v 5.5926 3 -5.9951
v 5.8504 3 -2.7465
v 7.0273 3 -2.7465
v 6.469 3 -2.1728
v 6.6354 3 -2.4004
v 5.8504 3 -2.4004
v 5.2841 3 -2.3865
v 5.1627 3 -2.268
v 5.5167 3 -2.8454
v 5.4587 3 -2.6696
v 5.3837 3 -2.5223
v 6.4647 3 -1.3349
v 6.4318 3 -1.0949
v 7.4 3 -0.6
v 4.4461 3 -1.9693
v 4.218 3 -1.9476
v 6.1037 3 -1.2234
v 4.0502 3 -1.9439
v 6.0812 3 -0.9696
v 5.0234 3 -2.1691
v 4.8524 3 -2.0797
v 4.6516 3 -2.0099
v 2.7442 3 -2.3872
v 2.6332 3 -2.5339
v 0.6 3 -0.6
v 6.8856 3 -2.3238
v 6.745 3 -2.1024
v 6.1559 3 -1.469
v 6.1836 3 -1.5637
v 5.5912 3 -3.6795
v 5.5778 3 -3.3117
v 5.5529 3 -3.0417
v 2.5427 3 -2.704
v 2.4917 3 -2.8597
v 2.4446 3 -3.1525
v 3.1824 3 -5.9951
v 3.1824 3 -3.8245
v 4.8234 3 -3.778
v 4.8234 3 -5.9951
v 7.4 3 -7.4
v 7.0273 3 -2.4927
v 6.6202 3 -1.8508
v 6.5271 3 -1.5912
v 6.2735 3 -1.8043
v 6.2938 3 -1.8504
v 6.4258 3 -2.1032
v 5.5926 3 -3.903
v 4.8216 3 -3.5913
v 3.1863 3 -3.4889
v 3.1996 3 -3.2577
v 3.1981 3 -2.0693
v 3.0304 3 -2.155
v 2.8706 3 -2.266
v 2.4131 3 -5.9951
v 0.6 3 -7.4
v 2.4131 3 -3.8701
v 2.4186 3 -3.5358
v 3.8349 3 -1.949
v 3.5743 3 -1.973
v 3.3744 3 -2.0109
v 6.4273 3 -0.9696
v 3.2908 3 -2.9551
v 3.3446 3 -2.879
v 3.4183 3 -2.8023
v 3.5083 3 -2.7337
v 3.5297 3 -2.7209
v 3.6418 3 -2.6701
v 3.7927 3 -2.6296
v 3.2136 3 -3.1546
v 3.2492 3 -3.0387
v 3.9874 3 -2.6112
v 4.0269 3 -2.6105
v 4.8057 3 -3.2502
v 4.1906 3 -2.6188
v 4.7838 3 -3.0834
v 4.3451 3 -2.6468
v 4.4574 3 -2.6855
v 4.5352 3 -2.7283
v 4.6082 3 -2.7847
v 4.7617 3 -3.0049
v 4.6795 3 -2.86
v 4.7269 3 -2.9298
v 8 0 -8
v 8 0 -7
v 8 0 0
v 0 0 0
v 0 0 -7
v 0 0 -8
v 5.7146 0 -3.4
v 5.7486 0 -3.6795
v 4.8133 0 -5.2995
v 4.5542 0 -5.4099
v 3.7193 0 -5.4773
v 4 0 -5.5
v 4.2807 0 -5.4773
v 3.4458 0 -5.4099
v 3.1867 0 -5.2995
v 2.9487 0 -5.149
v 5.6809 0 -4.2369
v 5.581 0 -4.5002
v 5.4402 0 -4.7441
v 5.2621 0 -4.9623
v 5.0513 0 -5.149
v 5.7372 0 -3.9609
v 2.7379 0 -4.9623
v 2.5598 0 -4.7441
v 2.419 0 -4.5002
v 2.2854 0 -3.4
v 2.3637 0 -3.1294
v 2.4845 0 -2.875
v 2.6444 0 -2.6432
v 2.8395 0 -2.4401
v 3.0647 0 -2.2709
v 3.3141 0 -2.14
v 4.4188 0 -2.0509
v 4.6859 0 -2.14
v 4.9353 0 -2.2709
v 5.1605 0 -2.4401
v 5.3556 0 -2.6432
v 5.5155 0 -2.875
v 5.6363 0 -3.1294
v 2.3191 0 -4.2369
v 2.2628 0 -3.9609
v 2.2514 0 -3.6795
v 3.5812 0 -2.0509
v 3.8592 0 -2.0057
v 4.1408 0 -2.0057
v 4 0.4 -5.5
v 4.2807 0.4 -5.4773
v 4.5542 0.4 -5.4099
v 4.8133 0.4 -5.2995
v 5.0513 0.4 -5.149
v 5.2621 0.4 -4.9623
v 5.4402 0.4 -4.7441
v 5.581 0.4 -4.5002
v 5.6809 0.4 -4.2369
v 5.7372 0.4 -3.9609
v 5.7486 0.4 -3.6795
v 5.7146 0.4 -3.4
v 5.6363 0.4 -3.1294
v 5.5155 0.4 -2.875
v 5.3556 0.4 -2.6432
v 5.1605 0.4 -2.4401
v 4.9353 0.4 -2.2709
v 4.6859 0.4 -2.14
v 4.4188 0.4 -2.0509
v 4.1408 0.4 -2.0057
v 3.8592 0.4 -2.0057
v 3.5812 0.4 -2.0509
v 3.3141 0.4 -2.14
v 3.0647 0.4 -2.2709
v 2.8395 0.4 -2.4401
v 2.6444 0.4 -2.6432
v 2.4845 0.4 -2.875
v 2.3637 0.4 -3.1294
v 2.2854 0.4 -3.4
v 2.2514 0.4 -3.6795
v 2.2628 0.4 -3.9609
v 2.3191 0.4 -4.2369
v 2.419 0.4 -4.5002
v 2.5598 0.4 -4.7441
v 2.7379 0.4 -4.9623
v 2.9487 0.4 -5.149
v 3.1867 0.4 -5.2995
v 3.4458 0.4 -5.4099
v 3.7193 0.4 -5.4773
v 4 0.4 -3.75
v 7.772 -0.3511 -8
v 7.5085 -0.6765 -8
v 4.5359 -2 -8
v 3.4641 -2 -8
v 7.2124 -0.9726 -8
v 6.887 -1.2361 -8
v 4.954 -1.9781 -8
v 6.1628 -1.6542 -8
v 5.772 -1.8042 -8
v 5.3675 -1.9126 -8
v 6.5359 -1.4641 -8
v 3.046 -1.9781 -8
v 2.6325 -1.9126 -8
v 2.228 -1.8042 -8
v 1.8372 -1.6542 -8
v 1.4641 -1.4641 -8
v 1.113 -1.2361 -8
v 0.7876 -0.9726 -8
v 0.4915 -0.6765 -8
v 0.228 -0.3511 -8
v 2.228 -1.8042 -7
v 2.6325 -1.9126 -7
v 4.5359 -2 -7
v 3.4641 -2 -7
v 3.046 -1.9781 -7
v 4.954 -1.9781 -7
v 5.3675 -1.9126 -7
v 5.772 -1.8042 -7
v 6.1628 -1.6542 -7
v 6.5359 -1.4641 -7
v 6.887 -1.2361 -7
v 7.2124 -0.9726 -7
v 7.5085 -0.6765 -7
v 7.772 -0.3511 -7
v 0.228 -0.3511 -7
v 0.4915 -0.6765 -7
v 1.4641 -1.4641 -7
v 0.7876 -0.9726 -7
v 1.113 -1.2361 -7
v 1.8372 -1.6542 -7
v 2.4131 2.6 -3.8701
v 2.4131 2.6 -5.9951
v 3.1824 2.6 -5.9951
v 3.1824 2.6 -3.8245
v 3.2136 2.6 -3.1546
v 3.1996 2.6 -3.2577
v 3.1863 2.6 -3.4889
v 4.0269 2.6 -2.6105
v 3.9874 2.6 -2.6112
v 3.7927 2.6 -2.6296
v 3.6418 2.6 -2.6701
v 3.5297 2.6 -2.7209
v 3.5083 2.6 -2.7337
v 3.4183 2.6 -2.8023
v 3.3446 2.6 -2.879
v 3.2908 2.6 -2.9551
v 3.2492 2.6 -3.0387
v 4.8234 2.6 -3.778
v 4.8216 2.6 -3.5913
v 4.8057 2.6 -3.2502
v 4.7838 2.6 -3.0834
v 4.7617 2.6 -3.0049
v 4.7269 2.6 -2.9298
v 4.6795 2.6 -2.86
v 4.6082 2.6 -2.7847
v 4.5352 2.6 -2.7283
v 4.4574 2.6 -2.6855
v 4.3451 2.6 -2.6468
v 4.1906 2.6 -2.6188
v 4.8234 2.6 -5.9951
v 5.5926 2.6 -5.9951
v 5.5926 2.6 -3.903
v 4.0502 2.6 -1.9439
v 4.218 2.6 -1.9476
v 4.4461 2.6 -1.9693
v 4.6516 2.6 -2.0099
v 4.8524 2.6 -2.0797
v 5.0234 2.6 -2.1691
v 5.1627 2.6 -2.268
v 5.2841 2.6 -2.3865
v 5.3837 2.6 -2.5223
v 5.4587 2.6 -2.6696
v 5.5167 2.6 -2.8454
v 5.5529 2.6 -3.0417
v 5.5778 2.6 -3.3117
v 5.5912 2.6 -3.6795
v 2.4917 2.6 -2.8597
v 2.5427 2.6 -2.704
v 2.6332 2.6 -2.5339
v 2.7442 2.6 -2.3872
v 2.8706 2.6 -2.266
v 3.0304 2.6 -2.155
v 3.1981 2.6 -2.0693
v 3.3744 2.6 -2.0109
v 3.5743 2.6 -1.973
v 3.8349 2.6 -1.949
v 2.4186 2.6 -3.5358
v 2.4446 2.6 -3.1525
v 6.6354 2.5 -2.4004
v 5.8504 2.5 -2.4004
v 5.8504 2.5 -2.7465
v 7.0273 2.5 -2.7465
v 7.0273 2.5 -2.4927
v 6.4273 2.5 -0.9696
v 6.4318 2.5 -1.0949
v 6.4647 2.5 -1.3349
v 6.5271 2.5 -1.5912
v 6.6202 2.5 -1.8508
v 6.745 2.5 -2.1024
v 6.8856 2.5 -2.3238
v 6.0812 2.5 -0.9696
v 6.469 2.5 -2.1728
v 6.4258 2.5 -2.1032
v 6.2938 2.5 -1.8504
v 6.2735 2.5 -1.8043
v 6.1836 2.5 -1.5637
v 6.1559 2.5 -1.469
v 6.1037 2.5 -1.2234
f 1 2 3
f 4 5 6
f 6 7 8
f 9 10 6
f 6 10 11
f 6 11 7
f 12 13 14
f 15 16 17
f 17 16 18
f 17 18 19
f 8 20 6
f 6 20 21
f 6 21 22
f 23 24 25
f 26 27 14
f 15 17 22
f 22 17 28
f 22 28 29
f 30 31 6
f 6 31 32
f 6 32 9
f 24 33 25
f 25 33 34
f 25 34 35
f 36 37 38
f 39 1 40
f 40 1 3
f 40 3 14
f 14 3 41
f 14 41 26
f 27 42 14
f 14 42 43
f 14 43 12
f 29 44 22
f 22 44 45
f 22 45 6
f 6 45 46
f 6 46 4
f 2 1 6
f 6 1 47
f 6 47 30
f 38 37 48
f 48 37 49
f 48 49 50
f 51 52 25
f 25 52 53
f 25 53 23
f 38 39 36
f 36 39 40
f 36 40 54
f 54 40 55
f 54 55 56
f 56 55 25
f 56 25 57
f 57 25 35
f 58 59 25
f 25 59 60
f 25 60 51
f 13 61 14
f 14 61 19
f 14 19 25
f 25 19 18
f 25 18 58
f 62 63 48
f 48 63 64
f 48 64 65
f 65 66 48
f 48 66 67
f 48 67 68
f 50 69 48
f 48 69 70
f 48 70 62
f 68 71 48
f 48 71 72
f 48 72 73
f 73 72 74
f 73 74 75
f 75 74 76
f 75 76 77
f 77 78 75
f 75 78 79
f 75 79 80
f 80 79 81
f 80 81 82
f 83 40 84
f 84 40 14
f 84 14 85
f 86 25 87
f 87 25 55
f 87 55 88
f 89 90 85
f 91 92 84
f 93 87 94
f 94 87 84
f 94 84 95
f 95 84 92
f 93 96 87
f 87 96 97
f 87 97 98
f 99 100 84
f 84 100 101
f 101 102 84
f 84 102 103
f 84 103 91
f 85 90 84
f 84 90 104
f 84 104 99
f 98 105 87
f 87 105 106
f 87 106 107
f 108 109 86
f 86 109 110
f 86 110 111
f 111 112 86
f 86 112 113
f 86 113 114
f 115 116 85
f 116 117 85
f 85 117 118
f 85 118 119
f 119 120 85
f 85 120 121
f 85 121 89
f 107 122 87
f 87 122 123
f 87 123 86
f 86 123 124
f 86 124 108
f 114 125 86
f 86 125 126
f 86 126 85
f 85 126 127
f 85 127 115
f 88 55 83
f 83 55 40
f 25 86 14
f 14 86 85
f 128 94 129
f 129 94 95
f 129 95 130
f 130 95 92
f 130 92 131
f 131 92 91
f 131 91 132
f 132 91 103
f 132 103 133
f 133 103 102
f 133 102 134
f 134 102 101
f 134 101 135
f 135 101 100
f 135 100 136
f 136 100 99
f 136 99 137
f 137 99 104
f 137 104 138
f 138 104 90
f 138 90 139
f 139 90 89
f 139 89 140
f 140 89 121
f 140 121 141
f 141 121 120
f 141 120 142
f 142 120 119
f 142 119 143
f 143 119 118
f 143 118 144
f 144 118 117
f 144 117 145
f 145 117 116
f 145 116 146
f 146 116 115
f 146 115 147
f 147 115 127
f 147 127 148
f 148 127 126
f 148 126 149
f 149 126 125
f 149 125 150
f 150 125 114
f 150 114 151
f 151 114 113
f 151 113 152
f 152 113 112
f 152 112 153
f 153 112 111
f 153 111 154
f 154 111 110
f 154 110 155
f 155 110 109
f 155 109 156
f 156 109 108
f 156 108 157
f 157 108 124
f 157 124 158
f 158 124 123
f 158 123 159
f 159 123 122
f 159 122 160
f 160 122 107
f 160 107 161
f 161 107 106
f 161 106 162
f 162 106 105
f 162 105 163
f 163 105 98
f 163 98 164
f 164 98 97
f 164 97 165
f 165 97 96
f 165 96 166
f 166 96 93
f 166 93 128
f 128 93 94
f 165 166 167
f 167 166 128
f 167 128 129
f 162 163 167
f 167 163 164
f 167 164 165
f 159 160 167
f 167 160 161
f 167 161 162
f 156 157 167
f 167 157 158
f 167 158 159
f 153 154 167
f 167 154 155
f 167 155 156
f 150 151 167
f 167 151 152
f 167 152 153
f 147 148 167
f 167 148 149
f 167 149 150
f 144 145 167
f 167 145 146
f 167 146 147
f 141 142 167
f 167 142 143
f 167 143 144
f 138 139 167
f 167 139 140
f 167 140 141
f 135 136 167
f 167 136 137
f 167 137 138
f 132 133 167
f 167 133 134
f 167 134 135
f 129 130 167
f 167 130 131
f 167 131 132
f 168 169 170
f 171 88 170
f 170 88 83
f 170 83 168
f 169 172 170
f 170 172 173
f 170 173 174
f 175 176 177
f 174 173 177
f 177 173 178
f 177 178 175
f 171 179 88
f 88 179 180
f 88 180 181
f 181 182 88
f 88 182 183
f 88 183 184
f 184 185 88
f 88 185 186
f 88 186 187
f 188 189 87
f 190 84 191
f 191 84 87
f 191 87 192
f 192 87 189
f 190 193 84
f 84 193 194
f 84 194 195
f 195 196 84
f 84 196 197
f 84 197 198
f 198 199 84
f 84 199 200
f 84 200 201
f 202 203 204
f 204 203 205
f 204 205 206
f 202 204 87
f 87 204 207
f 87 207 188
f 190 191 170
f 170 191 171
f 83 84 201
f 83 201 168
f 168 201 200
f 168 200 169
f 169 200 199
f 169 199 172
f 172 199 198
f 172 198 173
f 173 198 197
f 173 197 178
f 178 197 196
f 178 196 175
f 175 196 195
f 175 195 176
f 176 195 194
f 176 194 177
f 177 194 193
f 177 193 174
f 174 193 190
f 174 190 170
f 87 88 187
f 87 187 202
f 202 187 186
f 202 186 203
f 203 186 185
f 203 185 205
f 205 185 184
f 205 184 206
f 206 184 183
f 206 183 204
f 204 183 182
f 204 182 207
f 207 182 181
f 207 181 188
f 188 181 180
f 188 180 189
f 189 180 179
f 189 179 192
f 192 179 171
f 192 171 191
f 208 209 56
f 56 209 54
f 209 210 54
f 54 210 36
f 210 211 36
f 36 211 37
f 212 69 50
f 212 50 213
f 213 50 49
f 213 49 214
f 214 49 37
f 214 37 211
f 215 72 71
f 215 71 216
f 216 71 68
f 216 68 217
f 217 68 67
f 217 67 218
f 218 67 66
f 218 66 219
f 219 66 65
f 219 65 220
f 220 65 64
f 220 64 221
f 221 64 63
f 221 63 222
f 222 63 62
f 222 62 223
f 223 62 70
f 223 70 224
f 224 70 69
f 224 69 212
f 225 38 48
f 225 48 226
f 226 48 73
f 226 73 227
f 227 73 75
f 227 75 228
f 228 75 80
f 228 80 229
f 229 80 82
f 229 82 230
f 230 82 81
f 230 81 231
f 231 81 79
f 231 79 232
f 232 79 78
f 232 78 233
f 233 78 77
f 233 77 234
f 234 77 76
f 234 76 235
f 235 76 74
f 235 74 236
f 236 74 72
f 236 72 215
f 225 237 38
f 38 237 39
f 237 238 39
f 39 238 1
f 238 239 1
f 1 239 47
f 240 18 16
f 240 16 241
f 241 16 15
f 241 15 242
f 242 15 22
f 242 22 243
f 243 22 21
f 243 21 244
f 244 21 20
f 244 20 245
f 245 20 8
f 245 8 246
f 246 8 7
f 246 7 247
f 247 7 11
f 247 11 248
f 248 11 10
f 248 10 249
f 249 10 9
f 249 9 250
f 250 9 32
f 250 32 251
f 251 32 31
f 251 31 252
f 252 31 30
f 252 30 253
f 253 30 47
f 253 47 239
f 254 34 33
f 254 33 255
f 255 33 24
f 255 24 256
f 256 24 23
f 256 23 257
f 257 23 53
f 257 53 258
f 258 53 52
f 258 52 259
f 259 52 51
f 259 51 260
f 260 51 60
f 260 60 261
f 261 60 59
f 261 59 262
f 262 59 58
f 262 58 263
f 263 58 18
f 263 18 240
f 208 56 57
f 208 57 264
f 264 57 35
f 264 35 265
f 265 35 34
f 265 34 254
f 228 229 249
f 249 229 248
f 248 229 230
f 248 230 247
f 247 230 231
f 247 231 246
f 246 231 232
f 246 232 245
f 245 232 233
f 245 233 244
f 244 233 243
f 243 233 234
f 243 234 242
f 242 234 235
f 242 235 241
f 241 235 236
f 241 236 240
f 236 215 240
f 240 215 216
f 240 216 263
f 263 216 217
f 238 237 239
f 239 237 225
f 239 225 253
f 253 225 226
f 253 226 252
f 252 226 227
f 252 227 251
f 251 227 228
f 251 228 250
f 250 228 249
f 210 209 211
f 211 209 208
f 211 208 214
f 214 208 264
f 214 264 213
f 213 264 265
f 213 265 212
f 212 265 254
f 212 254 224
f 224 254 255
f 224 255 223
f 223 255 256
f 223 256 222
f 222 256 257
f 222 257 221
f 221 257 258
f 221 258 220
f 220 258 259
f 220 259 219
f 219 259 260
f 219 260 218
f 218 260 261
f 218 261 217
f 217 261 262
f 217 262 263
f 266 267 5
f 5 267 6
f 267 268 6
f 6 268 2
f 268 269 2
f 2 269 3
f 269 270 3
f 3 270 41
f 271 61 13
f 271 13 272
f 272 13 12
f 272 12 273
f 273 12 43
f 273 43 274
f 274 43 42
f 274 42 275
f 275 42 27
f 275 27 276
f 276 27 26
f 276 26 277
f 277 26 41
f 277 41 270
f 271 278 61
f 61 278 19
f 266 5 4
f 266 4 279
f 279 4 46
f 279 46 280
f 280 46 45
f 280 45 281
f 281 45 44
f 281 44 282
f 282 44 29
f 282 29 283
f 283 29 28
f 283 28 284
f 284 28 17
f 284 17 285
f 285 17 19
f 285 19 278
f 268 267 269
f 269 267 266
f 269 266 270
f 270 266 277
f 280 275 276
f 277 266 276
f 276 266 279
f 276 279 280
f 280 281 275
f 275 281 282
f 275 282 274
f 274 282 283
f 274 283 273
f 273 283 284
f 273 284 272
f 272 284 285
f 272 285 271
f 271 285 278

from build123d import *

# Parameters (mm, degrees)
SKETCH1_W               = 8
SKETCH1_H               = 8
BOSS_EXTRUDE1_DEPTH     = 3
CUT_EXTRUDE1_DEPTH      = 12.704699911
CUT_EXTRUDE1_DEPTH_BACK = 12.704699911
CUT_EXTRUDE2_DEPTH      = 11
SKETCH4_R               = 1.75
CUT_EXTRUDE3_DEPTH      = 0.4
SKETCH5_W               = 8
SKETCH5_H               = 1
BOSS_EXTRUDE2_DEPTH     = 2
FILLET1_R               = 4
CUT_EXTRUDE4_DEPTH      = 0.4
CUT_EXTRUDE5_DEPTH      = 0.5


with BuildPart() as part:
    # Sketch1 → Boss-Extrude1 (new body)
    with BuildSketch(Plane(origin=(0, 0, 0), x_dir=(1, 0, 0), z_dir=(0, 1, 0))):
        with Locations((4, 4)):
            Rectangle(SKETCH1_W, SKETCH1_H)
    extrude(amount=BOSS_EXTRUDE1_DEPTH)

    # Sketch2 → Cut-Extrude1 (cut, two sides: drawn at the far end of the back side and taken through both)
    with BuildSketch(Plane.XY.offset(-CUT_EXTRUDE1_DEPTH_BACK)):
        Polygon((0, 0), (0.6, 3), (0, 3), align=None)
        Polygon((8, 0), (7.4, 3), (8, 3), align=None)
    extrude(amount=CUT_EXTRUDE1_DEPTH + CUT_EXTRUDE1_DEPTH_BACK, mode=Mode.SUBTRACT)

    # Sketch3 → Cut-Extrude2 (cut)
    with BuildSketch(Plane(origin=(0, 0, 0), x_dir=(0, 0, -1), z_dir=(1, 0, 0))):
        Polygon((0, 0), (0.6, 3), (0, 3), align=None)
        Polygon((8, 3), (7.4, 3), (8, 0), align=None)
    extrude(amount=CUT_EXTRUDE2_DEPTH, mode=Mode.SUBTRACT)

    # Sketch4 → Cut-Extrude3 (cut)
    with BuildSketch(Plane.XZ):
        with Locations(Location((4, -3.75, 0), (0, 0, 270))):
            Circle(SKETCH4_R)
    extrude(amount=-CUT_EXTRUDE3_DEPTH, mode=Mode.SUBTRACT)

    # Sketch5 → Boss-Extrude2 (add)
    with BuildSketch(Plane.XZ):
        with Locations((4, -7.5)):
            Rectangle(SKETCH5_W, SKETCH5_H)
    extrude(amount=BOSS_EXTRUDE2_DEPTH)

    # Fillet1
    # the kernel refuses this fillet: 4 mm, written as the material it takes off along each edge
    with BuildSketch(Plane(origin=(8, -2, -16.660254038), x_dir=(0, 1, 0), z_dir=(0, 0, 1)), Plane(origin=(0, -2, 1.660254038), x_dir=(0, 1, 0), z_dir=(0, 0, -1))) as fillet1_piece_1:
        with BuildLine():
            CenterArc((4, 3.464101615), FILLET1_R, 180, 60)
            Line((0, 3.464101615), (-0.08, 3.464101615))
            Line((-0.08, 3.464101615), (-0.08, 0))
            Line((-0.08, 0), (0, -0.08))
            ThreePointArc((0, -0.08), (1, -0.08), (1.96, -0.069282032))
            Line((1.96, -0.069282032), (2, 0))
        make_face()
    extrude(amount=18.320508076, mode=Mode.SUBTRACT)

    # Sketch6 → Cut-Extrude4 (cut)
    with BuildSketch(Plane(origin=(0, 3, 0), x_dir=(1, 0, 0), z_dir=(0, 1, 0))):
        with BuildLine():
            Line((2.413140262, 5.995145478), (3.182371031, 5.995145478))
            Line((3.182371031, 5.995145478), (3.182371031, 3.824472401))
            add(Edge.make_bspline(
                [(3.182371031, 3.824472401), (3.182664695, 3.783339968), (3.183225327, 3.704814249), (3.183611242, 3.59262518), (3.18574694, 3.491896749), (3.190378411, 3.402466647), (3.193557117, 3.32438048), (3.199459629, 3.257623918), (3.205347836, 3.202222959), (3.211072588, 3.16927001), (3.213621031, 3.154600607)],
                knots=[0, 0, 0, 0, 1.470600056, 2.807515117, 4.011048972, 5.072079398, 6.00911328, 6.804506435, 7.467811572, 8, 8, 8, 8], degree=3))
            add(Edge.make_bspline(
                [(3.213621031, 3.154600607), (3.224127628, 3.115054038), (3.244816443, 3.03718185), (3.301842427, 2.930732637), (3.377172946, 2.83690436), (3.454012852, 2.769989694), (3.523520467, 2.722632459), (3.582561491, 2.693810163), (3.645203631, 2.667536787), (3.712771176, 2.647377448), (3.784538951, 2.629737301), (3.861373833, 2.619537644), (3.942627383, 2.611709661), (3.998321517, 2.610930314), (4.026922313, 2.610530094)],
                knots=[0, 0, 0, 0, 1.376921055, 2.711331395, 4.038631339, 5.418057255, 6.132954575, 6.870556231, 7.630397752, 8.422890386, 9.247036838, 10.121396817, 11.035274583, 12, 12, 12, 12], degree=3))
            add(Edge.make_bspline(
                [(4.026922313, 2.610530094), (4.055777389, 2.611053435), (4.111957634, 2.612072369), (4.193372399, 2.618140476), (4.269330983, 2.629588903), (4.339786919, 2.644600001), (4.40511233, 2.663571514), (4.464786061, 2.687591678), (4.518714075, 2.716497769), (4.582078678, 2.760066391), (4.650258908, 2.821527538), (4.715873674, 2.905091818), (4.762833649, 2.997337694), (4.784859868, 3.081565077), (4.796180605, 3.154949811), (4.803077806, 3.219164001), (4.809385646, 3.291832182), (4.815113647, 3.372755319), (4.819030865, 3.461994153), (4.821149619, 3.559774375), (4.82281709, 3.666080391), (4.823198873, 3.739802878), (4.823396672, 3.777998042)],
                knots=[0, 0, 0, 0, 1.036876239, 2.018776863, 2.930845756, 3.794842666, 4.605604932, 5.371924355, 6.101864688, 6.799283669, 8.1310906, 9.382718023, 10.597336334, 11.822035891, 12.492591141, 13.265194674, 14.141890321, 15.11351293, 16.179860579, 17.351049011, 18.627594861, 20, 20, 20, 20], degree=3))
            Line((4.823396672, 3.777998042), (4.823396672, 5.995145478))
            Line((4.823396672, 5.995145478), (5.592627441, 5.995145478))
            Line((5.592627441, 5.995145478), (5.592627441, 3.902998042))
            add(Edge.make_bspline(
                [(5.592627441, 3.902998042), (5.592528847, 3.845305157), (5.592339402, 3.734449864), (5.589381475, 3.574956755), (5.583094941, 3.428628514), (5.577830511, 3.295214312), (5.567675642, 3.175054503), (5.557043529, 3.068074376), (5.543346947, 2.974292627), (5.523815493, 2.867696041), (5.490991615, 2.748101531), (5.438090809, 2.615994056), (5.370481989, 2.495804532), (5.288434562, 2.387071806), (5.192421188, 2.289363714), (5.081004269, 2.203064381), (4.955329501, 2.127124651), (4.84016309, 2.072443299), (4.739752735, 2.035622669), (4.65797018, 2.010704116), (4.570444093, 1.989952175), (4.477277128, 1.973483664), (4.378429252, 1.959598273), (4.273864574, 1.950325107), (4.163741291, 1.944537997), (4.088628699, 1.944091898), (4.050159493, 1.943863427)],
                knots=[0, 0, 0, 0, 1.415574045, 2.719986624, 3.913607924, 5.00929969, 5.995467356, 6.871900228, 7.64671288, 8.320227872, 9.530145585, 10.682614022, 11.803571353, 12.90325401, 14.015460715, 15.154679255, 16.351678057, 17.612271512, 18.275764165, 18.974412946, 19.708786676, 20.481351116, 21.295095879, 22.157200529, 23.056203067, 24, 24, 24, 24], degree=3))
            add(Edge.make_bspline(
                [(4.050159493, 1.943863427), (4.00394899, 1.944454117), (3.914432357, 1.945598373), (3.784491522, 1.950702797), (3.663419731, 1.961238523), (3.550836598, 1.975478544), (3.446788608, 1.993784557), (3.351012543, 2.015669281), (3.264273035, 2.043328483), (3.160959321, 2.082832512), (3.045798952, 2.143260432), (2.920442018, 2.223870786), (2.810400187, 2.314853884), (2.716640343, 2.415320705), (2.638260762, 2.521740618), (2.574552012, 2.631810814), (2.523497916, 2.743696672), (2.502164616, 2.821459533), (2.491665903, 2.859728812)],
                knots=[0, 0, 0, 0, 1.128613534, 2.186292659, 3.174878439, 4.095586888, 4.95671962, 5.754129884, 6.492676435, 7.178284149, 8.453103036, 9.659838108, 10.813193309, 11.929983019, 13.007587775, 14.033493319, 15.032227051, 16, 16, 16, 16], degree=3))
            add(Edge.make_bspline(
                [(2.491665903, 2.859728812), (2.48524032, 2.889857793), (2.471705989, 2.953319061), (2.456334745, 3.054210037), (2.442311642, 3.165307899), (2.432733679, 3.286744058), (2.423654648, 3.418133217), (2.417136225, 3.559723113), (2.414455843, 3.711481594), (2.413587623, 3.816192051), (2.413140262, 3.870145478)],
                knots=[0, 0, 0, 0, 0.728071598, 1.533551606, 2.411422299, 3.374601532, 4.412367648, 5.524718474, 6.72457895, 8, 8, 8, 8], degree=3))
            Line((2.413140262, 3.870145478), (2.413140262, 5.995145478))
        make_face()
    extrude(amount=-CUT_EXTRUDE4_DEPTH, mode=Mode.SUBTRACT)

    # Sketch7 → Cut-Extrude5 (cut)
    with BuildSketch(Plane(origin=(0, 3, 0), x_dir=(1, 0, 0), z_dir=(0, 1, 0))):
        with BuildLine():
            Line((5.850386773, 2.400368579), (5.850386773, 2.746522425))
            Line((5.850386773, 2.746522425), (7.02730985, 2.746522425))
            Line((7.02730985, 2.746522425), (7.02730985, 2.492676271))
            add(Edge.make_bspline(
                [(7.02730985, 2.492676271), (7.015032321, 2.480184286), (6.989793248, 2.454504354), (6.953640746, 2.41247659), (6.916952595, 2.366869092), (6.880495981, 2.317067299), (6.84313767, 2.263857918), (6.806519427, 2.206220957), (6.769380335, 2.144904141), (6.719379376, 2.058171383), (6.660934493, 1.944871602), (6.599102899, 1.804034186), (6.546425212, 1.658871525), (6.510353845, 1.535182236), (6.485981829, 1.436045461), (6.470058334, 1.363554301), (6.45665413, 1.293103137), (6.44574982, 1.224568153), (6.437611625, 1.157918082), (6.431181064, 1.093384645), (6.428008496, 1.030810475), (6.427540351, 0.989794441), (6.42730985, 0.969599348)],
                knots=[0, 0, 0, 0, 0.628545797, 1.29210959, 1.98878689, 2.729126096, 3.507039704, 4.322017351, 5.179550397, 6.080149501, 7.915136253, 9.752312618, 11.597470118, 13.454141581, 14.373891568, 15.261584755, 16.117868869, 16.947726723, 17.752002974, 18.527724242, 19.275094557, 20, 20, 20, 20], degree=3))
            Line((6.42730985, 0.969599348), (6.081156004, 0.969599348))
            add(Edge.make_bspline(
                [(6.081156004, 0.969599348), (6.082313464, 1.000264514), (6.084641243, 1.061935513), (6.093350513, 1.15450167), (6.107029358, 1.247412503), (6.124019401, 1.340882746), (6.146450494, 1.434684851), (6.172051243, 1.529166286), (6.203062702, 1.623822431), (6.237825714, 1.718472296), (6.276202253, 1.812217257), (6.31802728, 1.903894573), (6.363192674, 1.992932291), (6.411111069, 2.079643245), (6.462339924, 2.16374848), (6.516917811, 2.245156666), (6.574070556, 2.324456683), (6.614935451, 2.375068877), (6.635362734, 2.400368579)],
                knots=[0, 0, 0, 0, 0.943249748, 1.896978291, 2.856365892, 3.829648507, 4.816416106, 5.820376826, 6.838120354, 7.877341886, 8.919613352, 9.951365796, 10.974227495, 11.988073359, 12.996274698, 14.000568529, 15.000536908, 16, 16, 16, 16], degree=3))
            Line((6.635362734, 2.400368579), (5.850386773, 2.400368579))
        make_face()
    extrude(amount=-CUT_EXTRUDE5_DEPTH, mode=Mode.SUBTRACT)


solid = part.part
